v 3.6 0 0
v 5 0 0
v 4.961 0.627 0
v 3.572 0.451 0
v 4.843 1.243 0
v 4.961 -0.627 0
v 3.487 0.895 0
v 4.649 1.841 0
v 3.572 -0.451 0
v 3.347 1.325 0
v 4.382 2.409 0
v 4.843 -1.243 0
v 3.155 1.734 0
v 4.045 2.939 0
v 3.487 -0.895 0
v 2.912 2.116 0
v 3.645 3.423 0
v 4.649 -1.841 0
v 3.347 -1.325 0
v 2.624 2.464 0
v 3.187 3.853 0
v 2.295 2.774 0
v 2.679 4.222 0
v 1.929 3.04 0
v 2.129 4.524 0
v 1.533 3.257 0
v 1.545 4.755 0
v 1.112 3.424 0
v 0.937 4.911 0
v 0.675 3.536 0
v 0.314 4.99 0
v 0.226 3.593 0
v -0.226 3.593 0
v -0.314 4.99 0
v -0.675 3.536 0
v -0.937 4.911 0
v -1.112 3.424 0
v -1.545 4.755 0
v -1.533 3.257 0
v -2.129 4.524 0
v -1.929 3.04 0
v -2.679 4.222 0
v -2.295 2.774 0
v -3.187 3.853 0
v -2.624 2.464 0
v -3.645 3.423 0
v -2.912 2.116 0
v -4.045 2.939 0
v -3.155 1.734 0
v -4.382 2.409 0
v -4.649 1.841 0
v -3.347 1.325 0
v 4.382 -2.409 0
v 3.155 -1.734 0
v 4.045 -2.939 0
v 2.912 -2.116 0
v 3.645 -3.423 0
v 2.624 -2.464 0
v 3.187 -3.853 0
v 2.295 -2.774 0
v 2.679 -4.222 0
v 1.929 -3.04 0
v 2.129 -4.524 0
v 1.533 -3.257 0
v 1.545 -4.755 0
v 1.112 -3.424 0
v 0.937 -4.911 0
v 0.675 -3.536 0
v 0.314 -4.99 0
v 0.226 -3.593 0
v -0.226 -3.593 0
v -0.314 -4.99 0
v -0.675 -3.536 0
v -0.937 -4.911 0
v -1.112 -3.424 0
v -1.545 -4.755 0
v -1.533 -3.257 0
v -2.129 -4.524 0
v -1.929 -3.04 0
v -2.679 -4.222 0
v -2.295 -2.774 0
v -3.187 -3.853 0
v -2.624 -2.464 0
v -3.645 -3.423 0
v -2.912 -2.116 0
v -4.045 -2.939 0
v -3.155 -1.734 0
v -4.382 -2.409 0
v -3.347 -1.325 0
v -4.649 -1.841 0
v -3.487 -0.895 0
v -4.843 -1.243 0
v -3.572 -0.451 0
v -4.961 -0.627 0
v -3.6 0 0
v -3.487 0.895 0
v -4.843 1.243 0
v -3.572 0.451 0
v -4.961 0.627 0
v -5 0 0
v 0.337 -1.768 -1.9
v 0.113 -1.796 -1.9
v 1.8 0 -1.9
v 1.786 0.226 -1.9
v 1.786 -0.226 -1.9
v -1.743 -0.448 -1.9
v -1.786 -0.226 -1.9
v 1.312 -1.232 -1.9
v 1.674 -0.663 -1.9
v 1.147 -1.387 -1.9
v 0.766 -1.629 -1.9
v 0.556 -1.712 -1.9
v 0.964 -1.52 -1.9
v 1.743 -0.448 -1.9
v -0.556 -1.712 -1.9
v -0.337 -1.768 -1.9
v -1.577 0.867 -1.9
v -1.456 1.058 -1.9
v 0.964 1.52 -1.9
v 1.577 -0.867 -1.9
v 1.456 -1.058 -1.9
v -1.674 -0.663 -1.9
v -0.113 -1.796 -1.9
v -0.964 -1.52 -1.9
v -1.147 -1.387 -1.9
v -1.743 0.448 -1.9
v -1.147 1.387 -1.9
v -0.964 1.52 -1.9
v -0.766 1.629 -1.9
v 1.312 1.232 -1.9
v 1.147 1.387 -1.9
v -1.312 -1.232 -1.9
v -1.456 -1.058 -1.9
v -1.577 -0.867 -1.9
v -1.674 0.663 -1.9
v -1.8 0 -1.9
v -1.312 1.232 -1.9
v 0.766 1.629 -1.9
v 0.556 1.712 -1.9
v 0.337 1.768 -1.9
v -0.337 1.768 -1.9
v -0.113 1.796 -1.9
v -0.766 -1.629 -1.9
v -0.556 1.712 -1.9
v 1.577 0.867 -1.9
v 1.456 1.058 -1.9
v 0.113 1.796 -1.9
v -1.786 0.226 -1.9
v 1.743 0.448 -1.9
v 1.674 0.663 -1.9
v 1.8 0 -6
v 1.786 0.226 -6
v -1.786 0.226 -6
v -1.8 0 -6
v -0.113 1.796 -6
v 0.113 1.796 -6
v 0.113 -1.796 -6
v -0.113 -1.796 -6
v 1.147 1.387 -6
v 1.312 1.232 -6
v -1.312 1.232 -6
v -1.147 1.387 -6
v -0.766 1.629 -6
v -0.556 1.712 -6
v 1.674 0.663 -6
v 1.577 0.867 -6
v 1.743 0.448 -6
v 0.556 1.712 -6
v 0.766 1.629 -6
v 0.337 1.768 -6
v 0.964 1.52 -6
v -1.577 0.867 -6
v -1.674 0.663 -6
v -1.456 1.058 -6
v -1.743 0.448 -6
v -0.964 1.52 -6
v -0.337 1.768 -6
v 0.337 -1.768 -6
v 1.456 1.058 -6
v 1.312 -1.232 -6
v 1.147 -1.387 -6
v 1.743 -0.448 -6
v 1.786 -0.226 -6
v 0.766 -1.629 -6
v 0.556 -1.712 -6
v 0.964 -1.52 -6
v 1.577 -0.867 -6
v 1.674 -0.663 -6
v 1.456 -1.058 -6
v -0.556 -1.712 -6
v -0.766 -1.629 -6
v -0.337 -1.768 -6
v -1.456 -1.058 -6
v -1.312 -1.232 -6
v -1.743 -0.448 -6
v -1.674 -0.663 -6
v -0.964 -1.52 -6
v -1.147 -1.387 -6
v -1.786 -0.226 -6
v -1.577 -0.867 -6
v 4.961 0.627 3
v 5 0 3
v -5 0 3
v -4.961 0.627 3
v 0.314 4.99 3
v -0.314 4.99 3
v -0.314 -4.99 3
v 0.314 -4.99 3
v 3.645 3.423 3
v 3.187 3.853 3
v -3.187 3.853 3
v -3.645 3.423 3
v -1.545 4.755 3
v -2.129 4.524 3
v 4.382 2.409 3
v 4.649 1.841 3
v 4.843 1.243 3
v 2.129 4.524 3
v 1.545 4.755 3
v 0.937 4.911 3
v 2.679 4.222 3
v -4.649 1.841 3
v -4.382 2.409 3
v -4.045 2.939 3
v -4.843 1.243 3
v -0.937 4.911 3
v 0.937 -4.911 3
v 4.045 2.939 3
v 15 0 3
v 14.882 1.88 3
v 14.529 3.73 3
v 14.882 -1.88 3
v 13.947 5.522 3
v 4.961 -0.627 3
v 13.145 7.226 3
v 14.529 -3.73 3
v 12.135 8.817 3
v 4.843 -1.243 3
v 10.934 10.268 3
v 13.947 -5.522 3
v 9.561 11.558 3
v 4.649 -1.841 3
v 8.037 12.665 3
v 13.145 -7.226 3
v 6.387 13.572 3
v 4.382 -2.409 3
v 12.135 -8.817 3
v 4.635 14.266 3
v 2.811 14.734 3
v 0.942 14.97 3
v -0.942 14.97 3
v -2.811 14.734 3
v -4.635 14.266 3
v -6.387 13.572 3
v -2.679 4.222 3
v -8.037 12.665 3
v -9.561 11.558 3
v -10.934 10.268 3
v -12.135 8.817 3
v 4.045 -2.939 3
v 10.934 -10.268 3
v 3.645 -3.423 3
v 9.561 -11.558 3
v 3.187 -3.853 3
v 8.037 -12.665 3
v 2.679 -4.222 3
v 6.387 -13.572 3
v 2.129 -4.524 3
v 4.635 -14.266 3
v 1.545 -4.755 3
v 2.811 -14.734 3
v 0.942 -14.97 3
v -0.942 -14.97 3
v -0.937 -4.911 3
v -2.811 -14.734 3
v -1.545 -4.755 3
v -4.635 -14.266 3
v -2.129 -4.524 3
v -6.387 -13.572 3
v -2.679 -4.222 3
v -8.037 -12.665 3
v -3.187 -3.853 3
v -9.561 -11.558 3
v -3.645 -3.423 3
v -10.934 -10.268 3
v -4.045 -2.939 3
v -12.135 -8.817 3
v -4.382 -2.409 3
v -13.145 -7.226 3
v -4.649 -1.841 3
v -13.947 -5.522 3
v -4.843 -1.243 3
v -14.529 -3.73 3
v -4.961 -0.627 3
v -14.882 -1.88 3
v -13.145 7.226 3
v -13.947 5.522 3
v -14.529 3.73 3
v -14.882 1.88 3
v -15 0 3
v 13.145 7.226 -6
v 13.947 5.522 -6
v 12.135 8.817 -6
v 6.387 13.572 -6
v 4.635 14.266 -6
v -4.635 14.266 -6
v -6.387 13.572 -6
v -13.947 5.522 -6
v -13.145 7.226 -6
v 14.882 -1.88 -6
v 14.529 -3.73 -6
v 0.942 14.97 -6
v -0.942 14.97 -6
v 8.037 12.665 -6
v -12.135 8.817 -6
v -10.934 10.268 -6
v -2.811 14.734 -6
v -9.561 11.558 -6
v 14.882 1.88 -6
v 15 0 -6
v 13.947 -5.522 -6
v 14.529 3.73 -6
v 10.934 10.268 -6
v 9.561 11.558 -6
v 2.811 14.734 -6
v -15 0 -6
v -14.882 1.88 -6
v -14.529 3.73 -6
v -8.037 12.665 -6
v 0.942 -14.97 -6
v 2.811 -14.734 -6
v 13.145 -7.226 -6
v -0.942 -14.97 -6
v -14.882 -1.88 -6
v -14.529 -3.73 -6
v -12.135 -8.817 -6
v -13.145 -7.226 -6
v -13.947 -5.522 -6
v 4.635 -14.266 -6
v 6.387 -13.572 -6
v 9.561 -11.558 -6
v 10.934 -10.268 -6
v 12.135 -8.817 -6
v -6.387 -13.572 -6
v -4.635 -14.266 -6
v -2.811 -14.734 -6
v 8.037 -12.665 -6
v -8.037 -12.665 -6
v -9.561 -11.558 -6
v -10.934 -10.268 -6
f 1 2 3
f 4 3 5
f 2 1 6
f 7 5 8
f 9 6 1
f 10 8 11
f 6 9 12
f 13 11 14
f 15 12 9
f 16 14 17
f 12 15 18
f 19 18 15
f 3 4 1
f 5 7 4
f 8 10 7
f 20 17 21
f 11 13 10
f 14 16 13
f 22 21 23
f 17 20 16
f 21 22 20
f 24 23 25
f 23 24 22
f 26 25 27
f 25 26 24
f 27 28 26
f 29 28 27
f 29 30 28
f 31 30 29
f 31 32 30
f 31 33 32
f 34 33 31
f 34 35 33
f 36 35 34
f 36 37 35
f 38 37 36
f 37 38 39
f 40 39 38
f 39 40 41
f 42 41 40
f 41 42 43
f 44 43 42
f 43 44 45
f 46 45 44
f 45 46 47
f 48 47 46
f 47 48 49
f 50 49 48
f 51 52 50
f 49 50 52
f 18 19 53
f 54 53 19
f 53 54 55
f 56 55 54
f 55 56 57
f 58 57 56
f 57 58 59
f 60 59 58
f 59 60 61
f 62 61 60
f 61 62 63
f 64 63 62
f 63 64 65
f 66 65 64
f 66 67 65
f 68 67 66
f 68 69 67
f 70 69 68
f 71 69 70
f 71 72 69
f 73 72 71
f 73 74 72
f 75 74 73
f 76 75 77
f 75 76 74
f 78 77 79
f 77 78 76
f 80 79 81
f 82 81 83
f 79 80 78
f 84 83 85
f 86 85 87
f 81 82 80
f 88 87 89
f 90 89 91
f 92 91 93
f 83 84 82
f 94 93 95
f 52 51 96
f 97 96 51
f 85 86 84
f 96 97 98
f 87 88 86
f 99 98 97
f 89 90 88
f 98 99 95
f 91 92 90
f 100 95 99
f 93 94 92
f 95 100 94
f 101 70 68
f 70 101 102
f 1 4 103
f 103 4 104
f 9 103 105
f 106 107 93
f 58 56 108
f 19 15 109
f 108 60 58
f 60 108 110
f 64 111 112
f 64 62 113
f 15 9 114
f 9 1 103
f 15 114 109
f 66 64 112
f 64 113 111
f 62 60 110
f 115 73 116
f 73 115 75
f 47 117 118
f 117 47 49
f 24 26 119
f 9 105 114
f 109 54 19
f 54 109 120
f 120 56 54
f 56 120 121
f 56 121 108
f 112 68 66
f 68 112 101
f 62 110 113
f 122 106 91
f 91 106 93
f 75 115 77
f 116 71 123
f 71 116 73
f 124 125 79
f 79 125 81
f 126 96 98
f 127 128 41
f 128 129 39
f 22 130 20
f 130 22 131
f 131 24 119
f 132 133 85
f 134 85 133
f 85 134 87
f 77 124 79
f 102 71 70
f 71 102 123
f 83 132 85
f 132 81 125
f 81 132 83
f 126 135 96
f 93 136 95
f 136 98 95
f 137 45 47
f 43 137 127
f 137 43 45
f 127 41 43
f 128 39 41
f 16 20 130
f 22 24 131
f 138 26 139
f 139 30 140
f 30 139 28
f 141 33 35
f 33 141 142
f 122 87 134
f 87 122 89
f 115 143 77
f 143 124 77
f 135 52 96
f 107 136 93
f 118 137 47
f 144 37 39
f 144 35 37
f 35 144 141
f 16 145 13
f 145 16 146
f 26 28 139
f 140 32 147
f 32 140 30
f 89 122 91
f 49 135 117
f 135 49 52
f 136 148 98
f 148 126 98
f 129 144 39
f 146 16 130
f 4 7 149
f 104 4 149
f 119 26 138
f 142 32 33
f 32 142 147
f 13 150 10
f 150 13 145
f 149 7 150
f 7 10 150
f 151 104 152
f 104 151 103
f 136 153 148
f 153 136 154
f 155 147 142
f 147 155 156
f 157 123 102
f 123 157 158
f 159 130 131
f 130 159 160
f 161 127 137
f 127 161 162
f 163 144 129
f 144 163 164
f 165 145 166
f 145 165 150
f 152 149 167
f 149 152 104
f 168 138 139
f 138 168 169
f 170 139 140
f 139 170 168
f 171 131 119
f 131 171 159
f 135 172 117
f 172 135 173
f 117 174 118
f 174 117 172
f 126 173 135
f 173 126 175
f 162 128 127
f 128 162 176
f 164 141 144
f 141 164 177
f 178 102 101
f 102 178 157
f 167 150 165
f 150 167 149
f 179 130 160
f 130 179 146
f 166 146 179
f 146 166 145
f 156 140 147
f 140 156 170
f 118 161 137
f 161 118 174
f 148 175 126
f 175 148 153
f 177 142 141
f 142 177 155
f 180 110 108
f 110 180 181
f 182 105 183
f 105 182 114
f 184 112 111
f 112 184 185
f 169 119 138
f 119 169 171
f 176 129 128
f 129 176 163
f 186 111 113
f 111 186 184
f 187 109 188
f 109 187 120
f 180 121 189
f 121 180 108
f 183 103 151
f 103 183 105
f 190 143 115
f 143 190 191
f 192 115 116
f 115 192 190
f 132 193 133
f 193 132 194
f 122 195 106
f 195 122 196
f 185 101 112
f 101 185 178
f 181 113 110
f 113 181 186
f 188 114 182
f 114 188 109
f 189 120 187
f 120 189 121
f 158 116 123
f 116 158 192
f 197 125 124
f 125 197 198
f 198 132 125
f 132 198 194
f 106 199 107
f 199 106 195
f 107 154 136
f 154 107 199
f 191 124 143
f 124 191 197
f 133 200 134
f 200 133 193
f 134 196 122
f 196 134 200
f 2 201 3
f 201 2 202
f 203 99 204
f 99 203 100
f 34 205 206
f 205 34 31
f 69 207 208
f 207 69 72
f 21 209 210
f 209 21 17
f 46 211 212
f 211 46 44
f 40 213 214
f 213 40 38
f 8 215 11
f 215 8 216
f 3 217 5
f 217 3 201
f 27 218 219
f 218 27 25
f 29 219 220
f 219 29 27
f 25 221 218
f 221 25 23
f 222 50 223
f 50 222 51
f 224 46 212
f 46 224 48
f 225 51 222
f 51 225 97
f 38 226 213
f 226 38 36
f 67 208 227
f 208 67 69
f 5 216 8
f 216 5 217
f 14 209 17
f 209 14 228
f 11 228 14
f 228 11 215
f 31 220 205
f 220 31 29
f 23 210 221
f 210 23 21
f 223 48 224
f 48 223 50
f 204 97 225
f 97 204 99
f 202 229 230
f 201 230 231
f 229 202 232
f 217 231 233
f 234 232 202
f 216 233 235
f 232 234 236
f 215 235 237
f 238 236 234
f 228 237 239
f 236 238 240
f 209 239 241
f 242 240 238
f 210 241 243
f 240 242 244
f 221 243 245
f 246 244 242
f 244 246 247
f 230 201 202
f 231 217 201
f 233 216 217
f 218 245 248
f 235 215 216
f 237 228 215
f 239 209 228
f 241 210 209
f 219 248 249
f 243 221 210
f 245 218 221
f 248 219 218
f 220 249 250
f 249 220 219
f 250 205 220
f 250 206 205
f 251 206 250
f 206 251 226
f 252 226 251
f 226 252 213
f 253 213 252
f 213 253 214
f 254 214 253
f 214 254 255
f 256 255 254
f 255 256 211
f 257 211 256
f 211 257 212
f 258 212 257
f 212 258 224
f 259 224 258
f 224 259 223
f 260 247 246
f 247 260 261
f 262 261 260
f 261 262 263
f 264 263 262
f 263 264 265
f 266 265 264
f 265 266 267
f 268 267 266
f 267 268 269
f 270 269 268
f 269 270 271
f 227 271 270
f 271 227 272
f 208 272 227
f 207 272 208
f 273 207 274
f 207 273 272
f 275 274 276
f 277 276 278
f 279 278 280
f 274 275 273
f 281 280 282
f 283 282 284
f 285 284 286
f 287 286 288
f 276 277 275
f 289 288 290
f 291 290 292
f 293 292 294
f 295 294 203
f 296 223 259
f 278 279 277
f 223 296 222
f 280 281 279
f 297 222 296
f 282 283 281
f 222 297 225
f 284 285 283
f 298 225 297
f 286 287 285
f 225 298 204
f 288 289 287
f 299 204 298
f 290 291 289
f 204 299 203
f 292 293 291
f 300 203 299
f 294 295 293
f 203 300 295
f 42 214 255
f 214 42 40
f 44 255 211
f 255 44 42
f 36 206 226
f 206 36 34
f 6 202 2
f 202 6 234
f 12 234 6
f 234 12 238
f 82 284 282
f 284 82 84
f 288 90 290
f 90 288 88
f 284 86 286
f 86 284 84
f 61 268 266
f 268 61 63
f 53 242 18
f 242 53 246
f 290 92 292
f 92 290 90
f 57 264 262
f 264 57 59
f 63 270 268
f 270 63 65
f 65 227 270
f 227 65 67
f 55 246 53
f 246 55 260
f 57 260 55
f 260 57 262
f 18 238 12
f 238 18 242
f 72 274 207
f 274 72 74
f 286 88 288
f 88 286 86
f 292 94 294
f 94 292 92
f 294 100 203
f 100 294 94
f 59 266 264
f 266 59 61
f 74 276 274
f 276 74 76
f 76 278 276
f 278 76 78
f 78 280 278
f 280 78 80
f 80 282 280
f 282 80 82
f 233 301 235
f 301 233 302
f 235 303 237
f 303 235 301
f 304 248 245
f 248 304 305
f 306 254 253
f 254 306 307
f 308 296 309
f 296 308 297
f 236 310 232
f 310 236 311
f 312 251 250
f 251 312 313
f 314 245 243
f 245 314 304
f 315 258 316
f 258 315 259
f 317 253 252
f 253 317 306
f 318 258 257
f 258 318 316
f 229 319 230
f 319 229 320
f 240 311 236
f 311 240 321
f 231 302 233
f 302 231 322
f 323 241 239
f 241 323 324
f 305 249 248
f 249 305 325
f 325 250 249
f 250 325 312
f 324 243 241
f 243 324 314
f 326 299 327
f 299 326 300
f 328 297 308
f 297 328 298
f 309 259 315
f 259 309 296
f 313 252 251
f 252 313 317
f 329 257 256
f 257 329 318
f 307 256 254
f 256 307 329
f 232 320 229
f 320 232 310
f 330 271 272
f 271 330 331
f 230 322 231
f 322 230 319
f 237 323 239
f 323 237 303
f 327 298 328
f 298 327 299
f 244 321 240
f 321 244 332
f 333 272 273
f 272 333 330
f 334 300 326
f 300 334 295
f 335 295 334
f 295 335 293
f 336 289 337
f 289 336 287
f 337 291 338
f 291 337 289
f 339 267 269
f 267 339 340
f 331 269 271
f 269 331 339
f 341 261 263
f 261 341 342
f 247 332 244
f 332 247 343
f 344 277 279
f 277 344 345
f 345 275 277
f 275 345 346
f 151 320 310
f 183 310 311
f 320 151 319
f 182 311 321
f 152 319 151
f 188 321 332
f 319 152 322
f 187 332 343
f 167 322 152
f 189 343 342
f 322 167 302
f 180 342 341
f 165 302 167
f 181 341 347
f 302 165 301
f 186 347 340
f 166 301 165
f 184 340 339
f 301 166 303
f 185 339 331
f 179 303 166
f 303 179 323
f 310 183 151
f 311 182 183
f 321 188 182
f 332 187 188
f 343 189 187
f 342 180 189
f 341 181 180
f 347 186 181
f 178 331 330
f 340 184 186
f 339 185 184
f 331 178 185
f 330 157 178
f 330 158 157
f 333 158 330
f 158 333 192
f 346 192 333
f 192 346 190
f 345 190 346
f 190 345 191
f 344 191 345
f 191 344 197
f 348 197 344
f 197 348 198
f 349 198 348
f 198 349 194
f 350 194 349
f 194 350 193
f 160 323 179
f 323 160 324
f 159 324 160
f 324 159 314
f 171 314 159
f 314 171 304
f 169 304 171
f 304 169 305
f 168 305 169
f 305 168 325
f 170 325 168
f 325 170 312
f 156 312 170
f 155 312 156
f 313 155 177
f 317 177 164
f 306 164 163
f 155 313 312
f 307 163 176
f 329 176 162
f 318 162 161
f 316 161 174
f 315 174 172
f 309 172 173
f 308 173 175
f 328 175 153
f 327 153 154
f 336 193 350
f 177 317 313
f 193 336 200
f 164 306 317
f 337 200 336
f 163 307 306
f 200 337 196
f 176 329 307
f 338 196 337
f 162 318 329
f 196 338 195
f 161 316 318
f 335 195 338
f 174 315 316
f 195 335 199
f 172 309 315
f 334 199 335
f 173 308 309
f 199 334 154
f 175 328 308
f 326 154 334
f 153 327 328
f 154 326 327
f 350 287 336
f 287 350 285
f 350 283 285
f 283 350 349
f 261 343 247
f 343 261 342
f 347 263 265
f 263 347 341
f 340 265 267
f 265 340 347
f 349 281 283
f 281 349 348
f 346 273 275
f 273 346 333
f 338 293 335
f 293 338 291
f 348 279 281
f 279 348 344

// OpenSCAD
$fn = 50;


difference() {
	union() {
		translate(v = [0, 0, -6.0000000000]) {
			cylinder(h = 9, r = 15.0000000000);
		}
	}
	union() {
		translate(v = [0, 0, 0]) {
			rotate(a = [0, 0, 0]) {
				difference() {
					union() {
						translate(v = [0, 0, -9.0000000000]) {
							cylinder(h = 9, r = 1.5000000000);
						}
						translate(v = [0, 0, -1.9000000000]) {
							cylinder(h = 1.9000000000, r1 = 1.8000000000, r2 = 3.6000000000);
						}
						translate(v = [0, 0, -9.0000000000]) {
							cylinder(h = 9, r = 1.8000000000);
						}
						translate(v = [0, 0, -9.0000000000]) {
							cylinder(h = 9, r = 1.5000000000);
						}
					}
					union();
				}
			}
		}
		#cylinder(h = 3, r = 5.0000000000);
	}
}
